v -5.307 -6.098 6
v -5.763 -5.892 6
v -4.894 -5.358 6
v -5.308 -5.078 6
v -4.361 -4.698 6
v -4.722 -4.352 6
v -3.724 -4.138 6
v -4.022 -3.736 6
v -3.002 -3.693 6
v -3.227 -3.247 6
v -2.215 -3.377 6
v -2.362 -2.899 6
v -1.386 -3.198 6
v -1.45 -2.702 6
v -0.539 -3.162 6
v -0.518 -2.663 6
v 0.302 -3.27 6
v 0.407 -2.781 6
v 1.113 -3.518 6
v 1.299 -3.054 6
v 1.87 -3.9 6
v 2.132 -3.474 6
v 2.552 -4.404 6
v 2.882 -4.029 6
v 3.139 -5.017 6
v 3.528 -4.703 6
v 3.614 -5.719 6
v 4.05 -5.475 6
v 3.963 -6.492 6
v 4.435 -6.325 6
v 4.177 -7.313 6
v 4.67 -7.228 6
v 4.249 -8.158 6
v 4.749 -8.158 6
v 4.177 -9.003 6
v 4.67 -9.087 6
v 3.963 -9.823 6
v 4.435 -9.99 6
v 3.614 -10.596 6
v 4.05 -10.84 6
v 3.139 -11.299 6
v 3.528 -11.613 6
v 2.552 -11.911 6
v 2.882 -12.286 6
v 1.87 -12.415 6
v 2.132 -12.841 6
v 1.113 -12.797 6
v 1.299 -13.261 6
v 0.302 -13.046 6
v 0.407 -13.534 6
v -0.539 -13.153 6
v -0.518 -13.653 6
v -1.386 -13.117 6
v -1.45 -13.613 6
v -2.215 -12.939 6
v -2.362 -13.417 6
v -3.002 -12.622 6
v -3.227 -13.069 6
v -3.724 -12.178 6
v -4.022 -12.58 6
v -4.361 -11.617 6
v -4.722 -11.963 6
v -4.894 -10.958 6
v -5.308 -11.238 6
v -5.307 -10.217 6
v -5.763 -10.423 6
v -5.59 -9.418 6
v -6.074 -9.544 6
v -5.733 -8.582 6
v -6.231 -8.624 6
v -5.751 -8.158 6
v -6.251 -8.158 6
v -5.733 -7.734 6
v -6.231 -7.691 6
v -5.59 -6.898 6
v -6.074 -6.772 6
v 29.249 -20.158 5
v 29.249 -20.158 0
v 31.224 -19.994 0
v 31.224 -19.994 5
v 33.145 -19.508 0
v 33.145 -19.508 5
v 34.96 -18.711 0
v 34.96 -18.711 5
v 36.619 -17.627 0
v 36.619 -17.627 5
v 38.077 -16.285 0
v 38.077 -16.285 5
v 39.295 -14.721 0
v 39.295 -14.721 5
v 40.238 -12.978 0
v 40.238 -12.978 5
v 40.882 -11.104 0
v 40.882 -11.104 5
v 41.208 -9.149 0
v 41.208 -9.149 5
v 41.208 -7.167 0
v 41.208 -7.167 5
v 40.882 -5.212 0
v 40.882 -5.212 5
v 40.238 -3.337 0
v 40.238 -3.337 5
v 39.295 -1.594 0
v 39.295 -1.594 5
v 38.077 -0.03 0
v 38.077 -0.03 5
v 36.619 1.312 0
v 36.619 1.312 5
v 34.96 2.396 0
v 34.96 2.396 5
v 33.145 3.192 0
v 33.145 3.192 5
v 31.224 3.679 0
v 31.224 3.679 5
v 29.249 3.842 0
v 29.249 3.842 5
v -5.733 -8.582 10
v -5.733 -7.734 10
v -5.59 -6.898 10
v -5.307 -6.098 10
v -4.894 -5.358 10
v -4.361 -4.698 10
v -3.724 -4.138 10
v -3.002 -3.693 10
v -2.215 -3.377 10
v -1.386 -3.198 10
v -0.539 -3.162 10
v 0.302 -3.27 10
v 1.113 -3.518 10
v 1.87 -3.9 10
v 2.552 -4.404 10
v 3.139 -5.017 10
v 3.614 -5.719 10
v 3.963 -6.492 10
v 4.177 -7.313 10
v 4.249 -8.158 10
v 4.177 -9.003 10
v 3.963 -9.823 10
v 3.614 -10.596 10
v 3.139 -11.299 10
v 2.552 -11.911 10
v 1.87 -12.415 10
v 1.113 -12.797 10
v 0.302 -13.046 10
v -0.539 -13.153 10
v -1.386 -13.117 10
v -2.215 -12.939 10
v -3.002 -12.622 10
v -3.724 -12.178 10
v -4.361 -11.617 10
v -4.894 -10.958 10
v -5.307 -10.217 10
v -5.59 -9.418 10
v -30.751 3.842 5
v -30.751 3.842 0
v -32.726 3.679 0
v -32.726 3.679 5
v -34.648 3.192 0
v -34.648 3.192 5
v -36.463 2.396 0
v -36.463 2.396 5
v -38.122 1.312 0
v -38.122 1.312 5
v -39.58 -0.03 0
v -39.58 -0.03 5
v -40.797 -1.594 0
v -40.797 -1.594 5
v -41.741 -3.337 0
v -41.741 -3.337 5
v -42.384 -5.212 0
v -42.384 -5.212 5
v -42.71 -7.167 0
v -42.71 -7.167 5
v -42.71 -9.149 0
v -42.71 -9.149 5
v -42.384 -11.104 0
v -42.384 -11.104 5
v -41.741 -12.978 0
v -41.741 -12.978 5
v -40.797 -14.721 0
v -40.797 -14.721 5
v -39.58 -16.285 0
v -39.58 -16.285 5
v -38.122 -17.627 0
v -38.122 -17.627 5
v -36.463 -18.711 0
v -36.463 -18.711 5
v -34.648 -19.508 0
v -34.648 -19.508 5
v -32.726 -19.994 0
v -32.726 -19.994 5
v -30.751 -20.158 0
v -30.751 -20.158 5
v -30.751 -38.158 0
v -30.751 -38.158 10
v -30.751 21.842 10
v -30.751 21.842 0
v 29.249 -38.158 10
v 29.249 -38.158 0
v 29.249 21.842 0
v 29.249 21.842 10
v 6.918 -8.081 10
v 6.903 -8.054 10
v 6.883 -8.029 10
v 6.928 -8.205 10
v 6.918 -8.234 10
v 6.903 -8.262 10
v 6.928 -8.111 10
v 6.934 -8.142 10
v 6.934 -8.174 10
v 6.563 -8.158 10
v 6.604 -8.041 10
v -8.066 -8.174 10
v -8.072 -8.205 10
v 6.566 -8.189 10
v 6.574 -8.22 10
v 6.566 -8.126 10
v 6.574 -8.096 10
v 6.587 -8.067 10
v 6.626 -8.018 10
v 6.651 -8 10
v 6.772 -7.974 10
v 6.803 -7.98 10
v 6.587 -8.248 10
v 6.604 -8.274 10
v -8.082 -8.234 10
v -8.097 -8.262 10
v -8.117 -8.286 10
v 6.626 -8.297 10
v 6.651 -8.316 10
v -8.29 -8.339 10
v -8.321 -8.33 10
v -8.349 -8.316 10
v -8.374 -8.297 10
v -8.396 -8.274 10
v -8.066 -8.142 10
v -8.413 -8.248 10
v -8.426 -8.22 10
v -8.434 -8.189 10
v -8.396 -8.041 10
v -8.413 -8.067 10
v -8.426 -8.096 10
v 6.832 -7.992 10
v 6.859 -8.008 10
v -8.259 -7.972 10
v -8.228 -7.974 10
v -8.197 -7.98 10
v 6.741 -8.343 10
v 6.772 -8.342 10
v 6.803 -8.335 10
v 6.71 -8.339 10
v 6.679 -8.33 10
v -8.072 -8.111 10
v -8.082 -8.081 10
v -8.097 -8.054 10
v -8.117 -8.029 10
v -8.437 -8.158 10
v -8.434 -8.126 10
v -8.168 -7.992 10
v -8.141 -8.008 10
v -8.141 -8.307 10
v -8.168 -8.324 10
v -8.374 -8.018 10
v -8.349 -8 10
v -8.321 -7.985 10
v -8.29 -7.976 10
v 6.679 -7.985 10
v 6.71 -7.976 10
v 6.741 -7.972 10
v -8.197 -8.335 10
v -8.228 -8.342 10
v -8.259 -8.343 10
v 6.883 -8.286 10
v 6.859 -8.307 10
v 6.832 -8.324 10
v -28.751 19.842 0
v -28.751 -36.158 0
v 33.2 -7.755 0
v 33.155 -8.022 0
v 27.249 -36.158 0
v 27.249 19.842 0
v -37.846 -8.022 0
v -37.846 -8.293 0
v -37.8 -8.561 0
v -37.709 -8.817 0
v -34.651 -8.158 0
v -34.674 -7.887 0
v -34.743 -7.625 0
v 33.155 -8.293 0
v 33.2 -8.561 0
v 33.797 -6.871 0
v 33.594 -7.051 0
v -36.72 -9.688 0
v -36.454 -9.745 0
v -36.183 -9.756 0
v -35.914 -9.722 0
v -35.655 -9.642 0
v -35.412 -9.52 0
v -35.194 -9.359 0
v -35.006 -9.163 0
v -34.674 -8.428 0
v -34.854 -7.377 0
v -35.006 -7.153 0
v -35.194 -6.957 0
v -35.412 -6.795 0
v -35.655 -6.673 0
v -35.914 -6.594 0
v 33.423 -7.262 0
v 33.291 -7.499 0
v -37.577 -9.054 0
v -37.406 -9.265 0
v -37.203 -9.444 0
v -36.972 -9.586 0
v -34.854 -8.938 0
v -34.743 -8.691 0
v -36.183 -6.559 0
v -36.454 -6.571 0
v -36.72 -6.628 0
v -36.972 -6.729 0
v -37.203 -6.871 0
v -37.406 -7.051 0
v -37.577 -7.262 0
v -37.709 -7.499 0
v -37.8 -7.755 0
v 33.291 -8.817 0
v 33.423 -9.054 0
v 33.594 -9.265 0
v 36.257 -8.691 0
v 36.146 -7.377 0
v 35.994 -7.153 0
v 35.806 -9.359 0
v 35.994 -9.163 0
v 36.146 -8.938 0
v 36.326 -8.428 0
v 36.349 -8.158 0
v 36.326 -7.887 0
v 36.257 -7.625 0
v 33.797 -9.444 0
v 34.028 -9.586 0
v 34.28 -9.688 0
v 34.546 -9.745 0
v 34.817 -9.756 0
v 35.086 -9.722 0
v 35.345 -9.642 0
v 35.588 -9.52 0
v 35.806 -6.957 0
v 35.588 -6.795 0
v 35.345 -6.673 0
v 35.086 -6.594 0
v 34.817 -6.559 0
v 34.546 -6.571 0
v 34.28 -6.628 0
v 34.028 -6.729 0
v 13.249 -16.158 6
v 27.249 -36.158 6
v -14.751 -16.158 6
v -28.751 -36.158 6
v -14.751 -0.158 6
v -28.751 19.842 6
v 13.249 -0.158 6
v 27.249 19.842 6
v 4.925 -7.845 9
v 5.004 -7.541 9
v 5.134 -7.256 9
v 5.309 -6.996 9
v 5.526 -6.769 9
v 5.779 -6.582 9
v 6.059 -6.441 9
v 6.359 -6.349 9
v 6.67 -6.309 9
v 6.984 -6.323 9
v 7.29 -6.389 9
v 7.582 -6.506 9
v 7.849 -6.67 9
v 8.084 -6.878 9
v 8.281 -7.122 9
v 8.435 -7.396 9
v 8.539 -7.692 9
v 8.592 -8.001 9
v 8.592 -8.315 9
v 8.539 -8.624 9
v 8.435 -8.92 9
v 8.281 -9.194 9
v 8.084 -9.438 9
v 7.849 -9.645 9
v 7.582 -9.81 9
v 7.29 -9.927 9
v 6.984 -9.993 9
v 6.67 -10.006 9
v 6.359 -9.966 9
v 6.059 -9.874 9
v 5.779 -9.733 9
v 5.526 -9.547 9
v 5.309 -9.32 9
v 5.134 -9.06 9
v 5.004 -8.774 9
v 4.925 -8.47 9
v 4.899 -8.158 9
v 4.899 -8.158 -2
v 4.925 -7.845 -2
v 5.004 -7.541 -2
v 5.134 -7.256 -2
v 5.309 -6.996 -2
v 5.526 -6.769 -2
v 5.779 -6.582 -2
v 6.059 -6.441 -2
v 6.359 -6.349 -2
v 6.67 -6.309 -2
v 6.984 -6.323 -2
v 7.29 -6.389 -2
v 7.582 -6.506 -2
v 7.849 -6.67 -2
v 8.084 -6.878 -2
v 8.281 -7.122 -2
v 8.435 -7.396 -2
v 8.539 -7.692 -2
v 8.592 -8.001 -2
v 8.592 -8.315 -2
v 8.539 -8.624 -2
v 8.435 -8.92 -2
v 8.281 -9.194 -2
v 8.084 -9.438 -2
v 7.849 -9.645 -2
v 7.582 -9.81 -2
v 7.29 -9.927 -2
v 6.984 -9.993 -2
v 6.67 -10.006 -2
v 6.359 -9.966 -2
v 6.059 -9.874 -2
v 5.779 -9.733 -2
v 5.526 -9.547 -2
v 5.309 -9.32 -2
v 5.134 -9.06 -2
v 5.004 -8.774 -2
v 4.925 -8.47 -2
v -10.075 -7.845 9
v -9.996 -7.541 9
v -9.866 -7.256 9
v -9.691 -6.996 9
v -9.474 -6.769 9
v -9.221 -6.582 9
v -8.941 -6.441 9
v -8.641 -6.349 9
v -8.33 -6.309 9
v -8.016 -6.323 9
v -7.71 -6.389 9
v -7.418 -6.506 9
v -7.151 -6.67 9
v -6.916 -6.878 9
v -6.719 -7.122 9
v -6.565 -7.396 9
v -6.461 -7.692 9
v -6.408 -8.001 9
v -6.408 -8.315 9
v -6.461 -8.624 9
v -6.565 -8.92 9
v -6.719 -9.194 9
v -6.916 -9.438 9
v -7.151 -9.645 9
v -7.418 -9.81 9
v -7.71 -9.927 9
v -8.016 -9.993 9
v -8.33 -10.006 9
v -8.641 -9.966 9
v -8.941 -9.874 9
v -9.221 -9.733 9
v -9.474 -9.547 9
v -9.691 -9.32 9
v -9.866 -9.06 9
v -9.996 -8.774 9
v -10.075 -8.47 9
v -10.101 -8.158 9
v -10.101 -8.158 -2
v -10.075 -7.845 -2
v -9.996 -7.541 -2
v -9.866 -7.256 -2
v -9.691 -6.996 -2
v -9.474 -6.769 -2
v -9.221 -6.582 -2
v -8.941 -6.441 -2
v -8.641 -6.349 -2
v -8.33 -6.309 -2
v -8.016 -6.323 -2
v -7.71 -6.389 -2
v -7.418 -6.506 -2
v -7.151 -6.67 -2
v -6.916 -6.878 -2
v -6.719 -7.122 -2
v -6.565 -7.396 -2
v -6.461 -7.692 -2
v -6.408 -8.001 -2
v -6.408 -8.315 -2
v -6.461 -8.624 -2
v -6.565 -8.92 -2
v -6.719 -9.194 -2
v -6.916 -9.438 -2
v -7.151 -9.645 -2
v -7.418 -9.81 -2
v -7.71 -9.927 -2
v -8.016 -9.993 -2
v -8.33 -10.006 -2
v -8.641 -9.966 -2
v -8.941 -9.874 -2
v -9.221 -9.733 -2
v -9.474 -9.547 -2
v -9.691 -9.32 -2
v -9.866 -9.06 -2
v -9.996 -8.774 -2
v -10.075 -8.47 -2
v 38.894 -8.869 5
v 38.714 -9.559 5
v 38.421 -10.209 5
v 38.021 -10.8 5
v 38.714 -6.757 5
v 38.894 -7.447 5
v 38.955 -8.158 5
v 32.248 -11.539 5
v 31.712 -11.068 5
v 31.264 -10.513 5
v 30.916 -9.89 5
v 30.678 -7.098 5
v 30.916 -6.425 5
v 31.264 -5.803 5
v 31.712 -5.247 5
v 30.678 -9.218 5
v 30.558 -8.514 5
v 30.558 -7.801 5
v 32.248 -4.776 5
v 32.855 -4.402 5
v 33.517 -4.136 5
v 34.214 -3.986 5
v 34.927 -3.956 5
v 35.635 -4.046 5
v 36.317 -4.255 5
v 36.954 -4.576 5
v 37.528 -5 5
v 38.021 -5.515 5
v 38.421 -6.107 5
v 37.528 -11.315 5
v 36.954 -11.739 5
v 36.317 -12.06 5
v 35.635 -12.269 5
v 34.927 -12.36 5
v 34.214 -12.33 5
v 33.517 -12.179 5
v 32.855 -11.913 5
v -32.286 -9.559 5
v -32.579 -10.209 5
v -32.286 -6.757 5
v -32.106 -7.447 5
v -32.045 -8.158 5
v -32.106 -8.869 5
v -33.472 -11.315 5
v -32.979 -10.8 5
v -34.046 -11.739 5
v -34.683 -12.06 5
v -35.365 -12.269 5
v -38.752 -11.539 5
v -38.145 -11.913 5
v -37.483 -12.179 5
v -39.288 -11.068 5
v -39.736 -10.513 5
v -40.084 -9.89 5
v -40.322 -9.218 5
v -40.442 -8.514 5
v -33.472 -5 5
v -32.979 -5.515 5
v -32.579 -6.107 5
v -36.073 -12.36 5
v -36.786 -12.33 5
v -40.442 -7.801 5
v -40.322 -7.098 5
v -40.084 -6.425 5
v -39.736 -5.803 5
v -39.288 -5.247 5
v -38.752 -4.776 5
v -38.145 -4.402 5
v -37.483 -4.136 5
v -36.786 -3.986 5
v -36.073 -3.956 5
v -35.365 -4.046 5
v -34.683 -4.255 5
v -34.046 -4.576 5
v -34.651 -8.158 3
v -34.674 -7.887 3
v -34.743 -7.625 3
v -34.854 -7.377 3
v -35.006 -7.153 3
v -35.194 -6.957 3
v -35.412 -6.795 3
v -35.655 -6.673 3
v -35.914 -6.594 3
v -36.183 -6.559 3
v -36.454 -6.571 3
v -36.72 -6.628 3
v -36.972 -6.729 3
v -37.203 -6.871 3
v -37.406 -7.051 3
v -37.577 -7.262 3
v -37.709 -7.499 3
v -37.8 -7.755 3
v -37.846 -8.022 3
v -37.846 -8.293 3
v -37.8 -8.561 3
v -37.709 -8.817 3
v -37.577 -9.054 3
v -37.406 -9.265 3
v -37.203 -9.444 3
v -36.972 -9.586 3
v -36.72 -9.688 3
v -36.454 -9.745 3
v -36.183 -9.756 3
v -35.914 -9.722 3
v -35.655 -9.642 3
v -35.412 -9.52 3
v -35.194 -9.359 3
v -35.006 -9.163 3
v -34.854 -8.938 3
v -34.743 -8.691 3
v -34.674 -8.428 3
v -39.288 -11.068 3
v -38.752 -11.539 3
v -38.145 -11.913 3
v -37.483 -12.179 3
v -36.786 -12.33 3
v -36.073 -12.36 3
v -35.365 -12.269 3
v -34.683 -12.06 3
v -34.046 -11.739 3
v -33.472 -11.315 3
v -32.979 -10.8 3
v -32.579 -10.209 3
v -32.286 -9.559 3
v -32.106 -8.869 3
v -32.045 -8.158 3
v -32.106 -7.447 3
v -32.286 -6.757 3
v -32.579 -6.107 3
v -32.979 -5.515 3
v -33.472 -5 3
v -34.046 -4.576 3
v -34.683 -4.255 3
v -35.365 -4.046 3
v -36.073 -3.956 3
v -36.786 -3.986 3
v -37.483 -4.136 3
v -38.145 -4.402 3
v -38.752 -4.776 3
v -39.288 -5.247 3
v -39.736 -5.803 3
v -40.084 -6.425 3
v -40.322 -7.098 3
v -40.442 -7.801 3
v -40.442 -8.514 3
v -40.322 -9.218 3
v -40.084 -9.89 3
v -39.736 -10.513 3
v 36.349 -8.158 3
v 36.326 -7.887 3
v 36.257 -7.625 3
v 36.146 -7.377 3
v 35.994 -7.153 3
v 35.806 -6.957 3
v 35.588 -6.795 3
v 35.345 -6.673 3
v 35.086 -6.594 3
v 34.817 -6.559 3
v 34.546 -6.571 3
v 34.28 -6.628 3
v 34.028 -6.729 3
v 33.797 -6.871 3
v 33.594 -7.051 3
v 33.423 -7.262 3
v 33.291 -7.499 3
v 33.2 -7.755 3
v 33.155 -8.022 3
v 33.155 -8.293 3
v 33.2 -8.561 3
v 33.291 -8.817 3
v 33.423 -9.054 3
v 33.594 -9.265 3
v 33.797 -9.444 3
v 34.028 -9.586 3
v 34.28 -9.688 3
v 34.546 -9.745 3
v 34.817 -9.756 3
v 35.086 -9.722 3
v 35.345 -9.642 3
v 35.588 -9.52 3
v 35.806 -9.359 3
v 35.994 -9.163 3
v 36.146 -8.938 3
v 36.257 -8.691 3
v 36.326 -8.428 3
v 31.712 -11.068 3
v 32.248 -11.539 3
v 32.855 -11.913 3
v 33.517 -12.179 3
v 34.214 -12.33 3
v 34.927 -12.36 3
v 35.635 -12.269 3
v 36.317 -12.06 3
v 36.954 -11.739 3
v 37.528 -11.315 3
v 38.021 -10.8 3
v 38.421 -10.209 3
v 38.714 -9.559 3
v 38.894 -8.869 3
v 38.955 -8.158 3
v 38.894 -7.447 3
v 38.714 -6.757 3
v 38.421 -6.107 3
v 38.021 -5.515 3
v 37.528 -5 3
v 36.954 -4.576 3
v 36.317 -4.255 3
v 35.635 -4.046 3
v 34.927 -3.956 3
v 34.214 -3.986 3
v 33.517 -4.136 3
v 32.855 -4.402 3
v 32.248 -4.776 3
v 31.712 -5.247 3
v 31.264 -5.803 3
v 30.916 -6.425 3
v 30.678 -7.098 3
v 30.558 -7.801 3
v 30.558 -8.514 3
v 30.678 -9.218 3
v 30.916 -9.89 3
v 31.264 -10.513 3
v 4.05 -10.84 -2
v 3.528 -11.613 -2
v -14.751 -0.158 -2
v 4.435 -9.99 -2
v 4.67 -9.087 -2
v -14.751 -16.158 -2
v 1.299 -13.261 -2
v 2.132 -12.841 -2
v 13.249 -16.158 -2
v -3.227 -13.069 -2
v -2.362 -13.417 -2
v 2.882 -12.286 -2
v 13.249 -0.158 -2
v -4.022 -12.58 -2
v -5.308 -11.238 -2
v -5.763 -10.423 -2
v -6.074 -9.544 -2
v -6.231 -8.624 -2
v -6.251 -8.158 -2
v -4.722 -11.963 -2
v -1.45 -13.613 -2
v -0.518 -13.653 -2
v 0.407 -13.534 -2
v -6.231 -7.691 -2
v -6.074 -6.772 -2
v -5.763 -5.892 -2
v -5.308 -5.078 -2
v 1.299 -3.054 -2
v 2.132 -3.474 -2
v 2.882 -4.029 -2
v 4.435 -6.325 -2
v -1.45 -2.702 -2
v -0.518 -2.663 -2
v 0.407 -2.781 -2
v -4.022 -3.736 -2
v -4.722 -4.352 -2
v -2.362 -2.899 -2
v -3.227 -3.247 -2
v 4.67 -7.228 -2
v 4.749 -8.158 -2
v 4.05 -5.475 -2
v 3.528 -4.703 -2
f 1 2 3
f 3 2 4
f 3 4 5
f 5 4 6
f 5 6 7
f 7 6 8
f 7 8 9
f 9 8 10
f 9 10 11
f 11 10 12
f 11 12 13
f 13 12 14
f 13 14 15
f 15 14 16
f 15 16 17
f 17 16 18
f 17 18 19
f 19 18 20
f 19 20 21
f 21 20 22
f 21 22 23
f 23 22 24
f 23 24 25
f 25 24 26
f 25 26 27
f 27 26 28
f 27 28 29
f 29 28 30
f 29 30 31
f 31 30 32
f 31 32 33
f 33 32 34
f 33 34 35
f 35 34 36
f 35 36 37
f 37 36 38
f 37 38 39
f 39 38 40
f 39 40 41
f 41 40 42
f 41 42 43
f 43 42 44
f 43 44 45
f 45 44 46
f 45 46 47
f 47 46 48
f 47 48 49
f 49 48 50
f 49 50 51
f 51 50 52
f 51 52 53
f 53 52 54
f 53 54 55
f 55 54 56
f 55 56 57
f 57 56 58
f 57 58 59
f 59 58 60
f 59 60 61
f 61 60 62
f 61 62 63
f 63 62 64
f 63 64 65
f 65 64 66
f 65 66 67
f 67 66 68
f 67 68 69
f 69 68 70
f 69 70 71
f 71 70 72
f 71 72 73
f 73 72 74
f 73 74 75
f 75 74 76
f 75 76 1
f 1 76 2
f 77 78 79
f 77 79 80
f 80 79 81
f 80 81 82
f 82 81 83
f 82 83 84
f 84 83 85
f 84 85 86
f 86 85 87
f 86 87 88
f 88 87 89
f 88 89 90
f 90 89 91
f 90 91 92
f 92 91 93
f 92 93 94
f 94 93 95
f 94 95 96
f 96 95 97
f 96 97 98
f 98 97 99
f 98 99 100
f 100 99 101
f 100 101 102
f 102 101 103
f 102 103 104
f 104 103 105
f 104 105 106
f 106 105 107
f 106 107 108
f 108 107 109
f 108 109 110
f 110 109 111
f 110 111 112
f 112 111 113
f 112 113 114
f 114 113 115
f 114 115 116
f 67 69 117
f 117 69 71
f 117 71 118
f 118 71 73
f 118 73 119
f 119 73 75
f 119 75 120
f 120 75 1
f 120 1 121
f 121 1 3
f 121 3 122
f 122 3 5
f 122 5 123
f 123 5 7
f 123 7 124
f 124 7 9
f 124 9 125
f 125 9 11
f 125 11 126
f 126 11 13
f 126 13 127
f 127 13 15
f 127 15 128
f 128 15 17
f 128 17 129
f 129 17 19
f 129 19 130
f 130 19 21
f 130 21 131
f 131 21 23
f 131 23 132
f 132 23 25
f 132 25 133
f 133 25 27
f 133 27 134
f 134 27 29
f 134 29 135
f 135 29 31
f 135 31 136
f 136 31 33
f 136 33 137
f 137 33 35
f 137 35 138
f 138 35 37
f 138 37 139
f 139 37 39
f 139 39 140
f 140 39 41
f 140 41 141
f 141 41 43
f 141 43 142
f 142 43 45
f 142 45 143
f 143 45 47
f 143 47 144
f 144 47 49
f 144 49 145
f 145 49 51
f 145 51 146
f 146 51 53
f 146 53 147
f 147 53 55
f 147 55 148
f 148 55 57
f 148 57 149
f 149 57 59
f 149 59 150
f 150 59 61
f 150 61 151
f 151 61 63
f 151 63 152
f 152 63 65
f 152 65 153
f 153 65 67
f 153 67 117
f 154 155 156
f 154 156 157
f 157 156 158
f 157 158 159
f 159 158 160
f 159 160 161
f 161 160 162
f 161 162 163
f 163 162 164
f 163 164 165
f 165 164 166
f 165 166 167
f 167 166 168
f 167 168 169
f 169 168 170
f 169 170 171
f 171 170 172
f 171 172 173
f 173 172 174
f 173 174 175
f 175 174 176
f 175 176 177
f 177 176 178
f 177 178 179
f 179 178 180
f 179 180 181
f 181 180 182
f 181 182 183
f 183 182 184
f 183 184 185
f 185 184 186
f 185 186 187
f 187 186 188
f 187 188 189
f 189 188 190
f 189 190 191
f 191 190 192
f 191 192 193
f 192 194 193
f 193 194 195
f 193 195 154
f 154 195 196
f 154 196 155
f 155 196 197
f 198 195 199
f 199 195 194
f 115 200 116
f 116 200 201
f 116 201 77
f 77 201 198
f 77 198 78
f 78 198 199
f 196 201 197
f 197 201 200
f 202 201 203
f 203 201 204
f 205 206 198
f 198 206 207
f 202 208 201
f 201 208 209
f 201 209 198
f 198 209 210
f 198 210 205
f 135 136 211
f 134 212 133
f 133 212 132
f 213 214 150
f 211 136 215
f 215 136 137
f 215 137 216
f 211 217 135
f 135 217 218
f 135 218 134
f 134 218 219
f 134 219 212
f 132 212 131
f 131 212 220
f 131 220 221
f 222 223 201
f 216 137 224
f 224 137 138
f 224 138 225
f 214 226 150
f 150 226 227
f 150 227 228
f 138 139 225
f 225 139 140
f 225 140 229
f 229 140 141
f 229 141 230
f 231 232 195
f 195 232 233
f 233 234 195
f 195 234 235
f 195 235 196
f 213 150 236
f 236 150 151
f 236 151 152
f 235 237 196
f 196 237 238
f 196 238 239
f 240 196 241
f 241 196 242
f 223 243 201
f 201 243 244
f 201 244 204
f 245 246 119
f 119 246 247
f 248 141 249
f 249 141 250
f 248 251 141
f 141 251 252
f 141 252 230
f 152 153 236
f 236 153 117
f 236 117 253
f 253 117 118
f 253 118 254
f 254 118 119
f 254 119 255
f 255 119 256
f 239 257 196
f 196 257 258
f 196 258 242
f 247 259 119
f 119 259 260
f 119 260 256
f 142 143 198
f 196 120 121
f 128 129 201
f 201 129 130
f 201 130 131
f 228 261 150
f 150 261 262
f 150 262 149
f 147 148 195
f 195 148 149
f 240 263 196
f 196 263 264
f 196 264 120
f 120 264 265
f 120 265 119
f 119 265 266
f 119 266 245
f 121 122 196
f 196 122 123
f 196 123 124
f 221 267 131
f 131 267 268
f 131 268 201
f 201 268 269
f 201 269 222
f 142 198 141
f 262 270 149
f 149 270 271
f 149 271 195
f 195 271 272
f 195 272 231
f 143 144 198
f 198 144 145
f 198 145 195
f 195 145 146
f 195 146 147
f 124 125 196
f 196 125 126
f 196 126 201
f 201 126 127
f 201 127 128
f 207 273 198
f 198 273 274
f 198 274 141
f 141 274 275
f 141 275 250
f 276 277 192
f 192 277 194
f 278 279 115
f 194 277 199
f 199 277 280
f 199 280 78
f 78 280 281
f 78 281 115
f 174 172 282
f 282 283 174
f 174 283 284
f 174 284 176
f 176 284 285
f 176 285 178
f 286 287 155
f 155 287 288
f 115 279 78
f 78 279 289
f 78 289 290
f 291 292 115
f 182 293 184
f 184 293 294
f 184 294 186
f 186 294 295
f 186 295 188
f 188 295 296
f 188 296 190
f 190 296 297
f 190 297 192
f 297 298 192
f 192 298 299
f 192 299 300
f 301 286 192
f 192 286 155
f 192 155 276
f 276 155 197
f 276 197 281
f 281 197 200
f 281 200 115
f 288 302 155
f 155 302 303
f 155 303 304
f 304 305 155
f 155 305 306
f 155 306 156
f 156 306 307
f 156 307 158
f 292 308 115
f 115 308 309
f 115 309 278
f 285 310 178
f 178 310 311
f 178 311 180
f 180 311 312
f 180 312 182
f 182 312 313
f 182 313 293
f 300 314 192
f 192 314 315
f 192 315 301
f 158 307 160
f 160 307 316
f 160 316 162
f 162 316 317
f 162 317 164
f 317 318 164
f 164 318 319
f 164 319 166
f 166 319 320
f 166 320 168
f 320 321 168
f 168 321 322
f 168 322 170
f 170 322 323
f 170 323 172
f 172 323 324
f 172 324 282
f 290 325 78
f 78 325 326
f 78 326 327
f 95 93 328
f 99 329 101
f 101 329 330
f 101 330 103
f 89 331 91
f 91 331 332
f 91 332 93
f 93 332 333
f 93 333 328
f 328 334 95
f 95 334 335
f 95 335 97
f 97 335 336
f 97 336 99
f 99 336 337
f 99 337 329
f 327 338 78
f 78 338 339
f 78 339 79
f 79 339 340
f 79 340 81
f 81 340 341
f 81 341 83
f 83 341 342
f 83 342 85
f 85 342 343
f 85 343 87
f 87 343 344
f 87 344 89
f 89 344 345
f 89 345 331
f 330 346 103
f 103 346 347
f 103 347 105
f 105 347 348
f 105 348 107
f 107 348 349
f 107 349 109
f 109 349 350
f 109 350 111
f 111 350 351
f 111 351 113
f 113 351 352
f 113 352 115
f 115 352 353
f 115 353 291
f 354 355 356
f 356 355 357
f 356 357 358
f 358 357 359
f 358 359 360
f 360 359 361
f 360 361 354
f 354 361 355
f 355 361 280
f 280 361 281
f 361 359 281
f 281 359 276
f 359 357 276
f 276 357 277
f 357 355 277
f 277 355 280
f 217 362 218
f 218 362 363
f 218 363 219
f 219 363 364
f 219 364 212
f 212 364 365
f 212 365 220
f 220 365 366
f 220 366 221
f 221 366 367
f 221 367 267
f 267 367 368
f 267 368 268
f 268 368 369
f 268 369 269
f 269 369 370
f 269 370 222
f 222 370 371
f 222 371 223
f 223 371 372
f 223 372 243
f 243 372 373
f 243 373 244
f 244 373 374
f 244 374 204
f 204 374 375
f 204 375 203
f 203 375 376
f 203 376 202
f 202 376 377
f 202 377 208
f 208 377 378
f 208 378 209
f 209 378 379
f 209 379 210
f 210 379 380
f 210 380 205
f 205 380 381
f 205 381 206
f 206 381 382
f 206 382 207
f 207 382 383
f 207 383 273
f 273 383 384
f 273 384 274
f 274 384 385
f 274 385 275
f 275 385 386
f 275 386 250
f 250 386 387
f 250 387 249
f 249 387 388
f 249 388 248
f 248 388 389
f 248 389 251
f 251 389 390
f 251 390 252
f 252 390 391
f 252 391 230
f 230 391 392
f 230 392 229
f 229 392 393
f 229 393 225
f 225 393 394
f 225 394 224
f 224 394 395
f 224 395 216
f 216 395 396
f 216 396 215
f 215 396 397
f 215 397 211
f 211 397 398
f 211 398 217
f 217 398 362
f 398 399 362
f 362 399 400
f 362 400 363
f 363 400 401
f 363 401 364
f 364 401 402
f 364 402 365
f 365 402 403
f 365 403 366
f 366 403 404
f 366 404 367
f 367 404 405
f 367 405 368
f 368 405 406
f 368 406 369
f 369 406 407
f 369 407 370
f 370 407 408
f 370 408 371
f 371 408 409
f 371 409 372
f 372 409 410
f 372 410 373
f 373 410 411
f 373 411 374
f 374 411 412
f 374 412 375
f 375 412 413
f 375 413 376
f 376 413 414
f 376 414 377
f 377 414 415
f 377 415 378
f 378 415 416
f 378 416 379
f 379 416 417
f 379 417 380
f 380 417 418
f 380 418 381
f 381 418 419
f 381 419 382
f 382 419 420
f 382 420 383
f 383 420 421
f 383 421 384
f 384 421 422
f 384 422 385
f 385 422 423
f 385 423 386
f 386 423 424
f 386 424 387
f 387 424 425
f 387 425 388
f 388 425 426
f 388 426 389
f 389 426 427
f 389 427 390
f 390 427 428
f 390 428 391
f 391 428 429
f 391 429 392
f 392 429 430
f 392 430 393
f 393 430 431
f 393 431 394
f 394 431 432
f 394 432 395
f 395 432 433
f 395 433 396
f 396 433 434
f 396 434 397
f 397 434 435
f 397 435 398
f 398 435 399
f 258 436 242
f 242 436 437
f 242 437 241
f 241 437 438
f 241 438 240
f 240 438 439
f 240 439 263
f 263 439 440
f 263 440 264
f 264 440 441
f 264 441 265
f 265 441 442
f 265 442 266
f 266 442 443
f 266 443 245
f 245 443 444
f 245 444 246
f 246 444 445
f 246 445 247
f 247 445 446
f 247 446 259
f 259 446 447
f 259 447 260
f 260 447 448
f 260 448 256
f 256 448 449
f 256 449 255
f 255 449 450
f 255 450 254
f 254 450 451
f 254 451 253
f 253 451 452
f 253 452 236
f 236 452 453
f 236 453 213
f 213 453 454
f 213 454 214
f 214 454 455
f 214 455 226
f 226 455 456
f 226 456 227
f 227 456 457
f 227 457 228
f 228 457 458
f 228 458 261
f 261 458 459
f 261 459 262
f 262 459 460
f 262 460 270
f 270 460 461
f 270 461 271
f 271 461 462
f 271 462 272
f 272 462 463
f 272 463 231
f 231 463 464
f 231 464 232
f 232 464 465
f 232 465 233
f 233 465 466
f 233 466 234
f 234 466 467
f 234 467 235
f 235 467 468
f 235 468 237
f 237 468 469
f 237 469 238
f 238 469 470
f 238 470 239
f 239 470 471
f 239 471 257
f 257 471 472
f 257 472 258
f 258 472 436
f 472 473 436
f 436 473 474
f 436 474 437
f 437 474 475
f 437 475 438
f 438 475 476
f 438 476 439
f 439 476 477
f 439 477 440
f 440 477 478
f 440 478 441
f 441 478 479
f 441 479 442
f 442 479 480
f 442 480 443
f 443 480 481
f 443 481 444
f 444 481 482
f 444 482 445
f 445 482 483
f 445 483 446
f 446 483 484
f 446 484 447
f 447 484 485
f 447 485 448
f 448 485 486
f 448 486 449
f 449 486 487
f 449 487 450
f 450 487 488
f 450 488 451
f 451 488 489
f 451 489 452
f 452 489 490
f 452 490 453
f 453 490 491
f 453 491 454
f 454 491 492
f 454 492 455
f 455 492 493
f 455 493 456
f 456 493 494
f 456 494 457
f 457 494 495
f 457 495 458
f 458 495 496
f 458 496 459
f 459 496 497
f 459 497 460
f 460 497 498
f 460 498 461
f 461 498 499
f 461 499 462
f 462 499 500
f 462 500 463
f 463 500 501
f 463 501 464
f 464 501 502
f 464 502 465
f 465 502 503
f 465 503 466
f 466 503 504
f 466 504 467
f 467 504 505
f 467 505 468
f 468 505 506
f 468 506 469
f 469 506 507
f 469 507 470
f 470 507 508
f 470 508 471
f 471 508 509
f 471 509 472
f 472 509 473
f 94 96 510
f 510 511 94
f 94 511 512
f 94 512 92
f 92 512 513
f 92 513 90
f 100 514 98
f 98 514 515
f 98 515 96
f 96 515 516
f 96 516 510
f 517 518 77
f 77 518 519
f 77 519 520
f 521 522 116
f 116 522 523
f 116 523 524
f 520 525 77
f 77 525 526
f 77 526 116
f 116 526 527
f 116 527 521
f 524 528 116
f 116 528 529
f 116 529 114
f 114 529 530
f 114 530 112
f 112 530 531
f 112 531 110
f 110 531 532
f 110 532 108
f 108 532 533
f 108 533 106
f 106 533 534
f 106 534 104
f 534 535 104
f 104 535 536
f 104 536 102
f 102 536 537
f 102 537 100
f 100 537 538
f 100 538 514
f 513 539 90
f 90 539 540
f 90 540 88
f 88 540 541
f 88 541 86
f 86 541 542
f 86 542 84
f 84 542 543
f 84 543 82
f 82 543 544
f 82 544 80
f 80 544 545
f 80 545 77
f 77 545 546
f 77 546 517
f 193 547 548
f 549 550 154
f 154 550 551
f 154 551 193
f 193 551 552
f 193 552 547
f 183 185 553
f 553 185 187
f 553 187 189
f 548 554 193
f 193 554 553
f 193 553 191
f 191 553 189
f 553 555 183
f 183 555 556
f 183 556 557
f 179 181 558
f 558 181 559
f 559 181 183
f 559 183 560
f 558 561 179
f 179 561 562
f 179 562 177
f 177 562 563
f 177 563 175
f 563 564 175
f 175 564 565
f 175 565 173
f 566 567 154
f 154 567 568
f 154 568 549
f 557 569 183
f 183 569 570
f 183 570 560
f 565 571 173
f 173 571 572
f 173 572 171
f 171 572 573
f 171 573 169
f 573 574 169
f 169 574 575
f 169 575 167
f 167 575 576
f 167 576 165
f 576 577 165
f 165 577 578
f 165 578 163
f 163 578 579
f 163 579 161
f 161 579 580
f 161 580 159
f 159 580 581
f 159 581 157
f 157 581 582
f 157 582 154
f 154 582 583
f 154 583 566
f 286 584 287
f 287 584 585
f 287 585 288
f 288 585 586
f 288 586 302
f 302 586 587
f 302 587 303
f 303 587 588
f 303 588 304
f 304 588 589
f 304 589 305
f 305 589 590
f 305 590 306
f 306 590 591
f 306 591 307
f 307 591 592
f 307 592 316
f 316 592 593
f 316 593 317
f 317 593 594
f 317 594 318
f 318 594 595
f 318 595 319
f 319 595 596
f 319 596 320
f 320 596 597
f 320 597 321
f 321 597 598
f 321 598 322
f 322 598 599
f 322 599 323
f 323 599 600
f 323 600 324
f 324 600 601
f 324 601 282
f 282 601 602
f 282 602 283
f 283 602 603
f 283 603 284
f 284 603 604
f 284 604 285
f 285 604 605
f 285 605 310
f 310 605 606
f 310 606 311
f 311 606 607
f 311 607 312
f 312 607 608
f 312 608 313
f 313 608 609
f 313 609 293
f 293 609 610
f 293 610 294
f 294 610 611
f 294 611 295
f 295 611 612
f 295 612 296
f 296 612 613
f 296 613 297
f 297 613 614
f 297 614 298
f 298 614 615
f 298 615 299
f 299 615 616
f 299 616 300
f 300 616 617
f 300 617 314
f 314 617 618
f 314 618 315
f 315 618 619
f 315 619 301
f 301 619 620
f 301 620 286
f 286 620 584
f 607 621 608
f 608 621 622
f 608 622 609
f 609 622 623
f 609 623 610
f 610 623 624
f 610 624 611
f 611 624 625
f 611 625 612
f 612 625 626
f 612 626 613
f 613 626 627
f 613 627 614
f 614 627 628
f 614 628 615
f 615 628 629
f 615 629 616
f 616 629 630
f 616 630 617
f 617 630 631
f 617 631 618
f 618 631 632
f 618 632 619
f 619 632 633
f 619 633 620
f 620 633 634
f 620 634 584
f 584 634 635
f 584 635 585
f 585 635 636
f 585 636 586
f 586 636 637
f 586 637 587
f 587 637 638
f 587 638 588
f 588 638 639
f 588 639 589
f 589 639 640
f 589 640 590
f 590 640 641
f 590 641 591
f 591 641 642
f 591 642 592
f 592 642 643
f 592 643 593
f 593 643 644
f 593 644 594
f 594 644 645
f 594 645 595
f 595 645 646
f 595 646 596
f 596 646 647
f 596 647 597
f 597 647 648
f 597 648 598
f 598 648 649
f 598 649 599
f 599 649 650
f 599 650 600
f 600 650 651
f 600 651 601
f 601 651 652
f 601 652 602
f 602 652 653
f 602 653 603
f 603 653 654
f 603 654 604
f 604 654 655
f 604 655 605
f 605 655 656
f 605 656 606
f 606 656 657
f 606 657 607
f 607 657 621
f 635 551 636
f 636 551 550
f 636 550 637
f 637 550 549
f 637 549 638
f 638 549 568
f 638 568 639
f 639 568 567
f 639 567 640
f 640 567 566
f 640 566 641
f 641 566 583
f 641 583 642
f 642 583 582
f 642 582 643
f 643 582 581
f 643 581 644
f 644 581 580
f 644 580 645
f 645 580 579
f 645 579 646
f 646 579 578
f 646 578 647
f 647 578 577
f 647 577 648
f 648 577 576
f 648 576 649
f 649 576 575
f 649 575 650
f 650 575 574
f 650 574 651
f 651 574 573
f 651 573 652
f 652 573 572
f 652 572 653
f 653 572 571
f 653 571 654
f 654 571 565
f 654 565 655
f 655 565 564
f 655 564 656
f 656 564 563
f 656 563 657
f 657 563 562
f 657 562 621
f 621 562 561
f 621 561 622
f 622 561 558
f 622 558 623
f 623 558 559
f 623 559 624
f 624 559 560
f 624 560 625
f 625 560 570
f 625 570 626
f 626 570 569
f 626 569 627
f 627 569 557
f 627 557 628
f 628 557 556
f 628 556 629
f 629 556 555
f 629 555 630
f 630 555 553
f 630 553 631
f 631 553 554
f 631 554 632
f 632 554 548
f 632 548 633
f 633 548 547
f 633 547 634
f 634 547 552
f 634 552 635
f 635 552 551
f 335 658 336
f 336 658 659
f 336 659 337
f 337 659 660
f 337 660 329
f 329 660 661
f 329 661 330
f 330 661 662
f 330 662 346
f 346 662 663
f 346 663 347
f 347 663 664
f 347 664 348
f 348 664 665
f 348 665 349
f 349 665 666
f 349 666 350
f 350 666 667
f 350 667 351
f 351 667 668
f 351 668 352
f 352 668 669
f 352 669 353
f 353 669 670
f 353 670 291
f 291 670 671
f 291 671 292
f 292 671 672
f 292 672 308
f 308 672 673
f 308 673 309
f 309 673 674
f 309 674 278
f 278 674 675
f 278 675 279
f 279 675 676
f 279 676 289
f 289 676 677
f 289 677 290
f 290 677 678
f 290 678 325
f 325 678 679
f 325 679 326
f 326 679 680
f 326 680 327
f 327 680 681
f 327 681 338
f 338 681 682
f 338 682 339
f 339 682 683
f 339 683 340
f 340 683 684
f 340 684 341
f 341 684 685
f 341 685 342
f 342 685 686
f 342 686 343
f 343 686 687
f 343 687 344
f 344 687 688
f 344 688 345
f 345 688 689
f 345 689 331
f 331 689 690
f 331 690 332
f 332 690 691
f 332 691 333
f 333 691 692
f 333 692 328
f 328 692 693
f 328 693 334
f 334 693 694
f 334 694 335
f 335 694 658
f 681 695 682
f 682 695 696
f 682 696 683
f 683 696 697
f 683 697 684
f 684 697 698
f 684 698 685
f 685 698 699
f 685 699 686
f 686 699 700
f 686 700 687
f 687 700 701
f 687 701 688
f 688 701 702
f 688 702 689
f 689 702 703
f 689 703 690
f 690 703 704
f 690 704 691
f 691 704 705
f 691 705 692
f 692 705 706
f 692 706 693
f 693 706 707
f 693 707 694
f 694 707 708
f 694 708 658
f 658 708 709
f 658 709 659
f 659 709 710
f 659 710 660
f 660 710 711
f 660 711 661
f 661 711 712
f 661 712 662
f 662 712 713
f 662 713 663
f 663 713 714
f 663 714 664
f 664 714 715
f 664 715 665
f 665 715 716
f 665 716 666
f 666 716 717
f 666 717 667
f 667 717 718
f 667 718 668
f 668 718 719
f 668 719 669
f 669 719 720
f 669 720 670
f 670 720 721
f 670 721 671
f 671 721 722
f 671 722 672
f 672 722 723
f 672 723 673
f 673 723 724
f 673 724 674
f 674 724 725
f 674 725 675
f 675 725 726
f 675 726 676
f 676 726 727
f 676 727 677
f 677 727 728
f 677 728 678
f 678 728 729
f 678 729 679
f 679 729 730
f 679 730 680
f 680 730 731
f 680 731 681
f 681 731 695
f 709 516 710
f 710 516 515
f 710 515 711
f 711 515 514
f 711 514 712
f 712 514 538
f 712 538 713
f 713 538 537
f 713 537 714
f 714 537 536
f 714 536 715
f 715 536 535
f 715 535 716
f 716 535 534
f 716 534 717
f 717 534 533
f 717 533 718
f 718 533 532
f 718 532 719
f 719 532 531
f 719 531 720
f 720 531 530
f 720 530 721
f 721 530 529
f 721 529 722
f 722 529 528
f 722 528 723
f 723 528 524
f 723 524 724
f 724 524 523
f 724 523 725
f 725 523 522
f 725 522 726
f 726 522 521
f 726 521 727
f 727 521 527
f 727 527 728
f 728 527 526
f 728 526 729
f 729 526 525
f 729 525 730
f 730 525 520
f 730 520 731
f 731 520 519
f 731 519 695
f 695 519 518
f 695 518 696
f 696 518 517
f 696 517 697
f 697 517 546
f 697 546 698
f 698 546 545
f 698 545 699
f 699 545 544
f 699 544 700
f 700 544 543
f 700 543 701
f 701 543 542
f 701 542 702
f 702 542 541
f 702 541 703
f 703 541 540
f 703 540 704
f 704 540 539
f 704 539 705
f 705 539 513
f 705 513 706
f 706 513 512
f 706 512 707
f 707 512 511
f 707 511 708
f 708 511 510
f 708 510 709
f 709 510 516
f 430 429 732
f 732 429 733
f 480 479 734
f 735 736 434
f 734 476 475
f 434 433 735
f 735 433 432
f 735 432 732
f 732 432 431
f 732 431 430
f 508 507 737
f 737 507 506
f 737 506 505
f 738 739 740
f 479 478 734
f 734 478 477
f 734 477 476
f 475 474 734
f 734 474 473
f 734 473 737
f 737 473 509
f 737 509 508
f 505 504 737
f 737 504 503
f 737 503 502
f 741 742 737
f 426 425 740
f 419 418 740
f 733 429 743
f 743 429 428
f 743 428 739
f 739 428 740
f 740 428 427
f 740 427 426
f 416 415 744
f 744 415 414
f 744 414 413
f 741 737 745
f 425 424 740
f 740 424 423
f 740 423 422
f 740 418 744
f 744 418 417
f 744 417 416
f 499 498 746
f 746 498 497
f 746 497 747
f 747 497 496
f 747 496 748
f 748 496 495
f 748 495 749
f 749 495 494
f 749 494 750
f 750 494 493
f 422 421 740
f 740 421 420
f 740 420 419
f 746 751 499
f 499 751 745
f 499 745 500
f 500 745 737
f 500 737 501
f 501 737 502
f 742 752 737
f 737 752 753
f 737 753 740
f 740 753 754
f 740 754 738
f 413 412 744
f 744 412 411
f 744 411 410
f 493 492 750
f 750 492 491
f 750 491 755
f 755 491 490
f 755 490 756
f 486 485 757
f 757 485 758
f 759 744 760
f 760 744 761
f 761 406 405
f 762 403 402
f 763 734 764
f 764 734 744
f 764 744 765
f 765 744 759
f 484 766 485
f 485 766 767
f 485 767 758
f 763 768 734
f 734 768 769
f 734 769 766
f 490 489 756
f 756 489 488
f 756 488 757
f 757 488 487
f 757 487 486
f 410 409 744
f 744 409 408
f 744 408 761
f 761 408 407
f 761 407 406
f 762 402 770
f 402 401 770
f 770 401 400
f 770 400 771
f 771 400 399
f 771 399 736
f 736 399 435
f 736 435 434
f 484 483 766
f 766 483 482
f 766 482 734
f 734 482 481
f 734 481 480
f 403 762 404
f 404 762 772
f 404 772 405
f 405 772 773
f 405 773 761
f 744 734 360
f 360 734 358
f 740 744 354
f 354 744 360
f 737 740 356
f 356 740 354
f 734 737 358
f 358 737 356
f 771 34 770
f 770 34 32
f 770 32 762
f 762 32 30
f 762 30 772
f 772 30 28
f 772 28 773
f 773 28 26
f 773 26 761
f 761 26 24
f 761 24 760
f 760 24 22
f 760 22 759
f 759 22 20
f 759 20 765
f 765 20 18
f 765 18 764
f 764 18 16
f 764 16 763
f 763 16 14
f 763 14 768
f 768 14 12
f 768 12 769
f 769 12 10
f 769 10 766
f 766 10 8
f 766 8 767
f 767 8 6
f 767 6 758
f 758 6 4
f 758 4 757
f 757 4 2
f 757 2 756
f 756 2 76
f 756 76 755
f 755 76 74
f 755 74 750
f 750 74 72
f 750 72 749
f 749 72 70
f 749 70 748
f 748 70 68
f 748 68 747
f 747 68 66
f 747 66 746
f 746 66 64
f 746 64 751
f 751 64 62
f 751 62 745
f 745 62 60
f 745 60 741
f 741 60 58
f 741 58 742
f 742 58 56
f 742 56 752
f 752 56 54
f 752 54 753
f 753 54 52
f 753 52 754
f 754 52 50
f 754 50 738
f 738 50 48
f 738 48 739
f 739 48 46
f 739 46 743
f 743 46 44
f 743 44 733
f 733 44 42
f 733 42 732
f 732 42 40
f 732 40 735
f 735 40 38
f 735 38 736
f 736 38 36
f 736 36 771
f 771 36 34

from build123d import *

# Parameters (mm, degrees)
BOSS_EXTRU_1_DEPTH                                = 10
ESQUISSE2_R                                       = 5.000000000000001
ENL_V_MAT_EXTRU_1_DEPTH                           = 59.16945460210114
ENL_V_MAT_EXTRU_5_DEPTH                           = 6
D_GAGEMENT_M3_52_D                                = 3.7
D_GAGEMENT_M3_52_DEPTH                            = 3
D_GAGEMENT_M3_52_TIP                              = 1.1115921452009865
ESQUISSE16_W                                      = 32.38443417416177
ESQUISSE16_H                                      = 29.10998154186418
ENL_V_MAT_EXTRU_6_DEPTH                           = 5
CHAMBRAGE_POUR_VIS_T_TE_HEXAGONALE_M3_D           = 3.2
CHAMBRAGE_POUR_VIS_T_TE_HEXAGONALE_M3_CBORE_D     = 8.412
CHAMBRAGE_POUR_VIS_T_TE_HEXAGONALE_M3_CBORE_DEPTH = 2
SKETCH1_R                                         = 1.8499999999999994
SKETCH1_R_2                                       = 1.8499999999999885
SKETCH1_R_3                                       = 5.5
BOSS_EXTRUDE1_DEPTH                               = 8


with BuildPart() as part:
    # Esquisse1 → Boss.-Extru.1 (new body)
    with BuildSketch(Plane.XY):
        with BuildLine():
            Line((-30.751266961285342, 21.842240344710792), (1.248733038714648, 21.842240344710792))
            Line((1.248733038714648, 21.842240344710792), (29.248733038714647, 21.842240344710792))
            Line((29.248733038714647, 21.842240344710792), (29.24873303871465, 3.8422403447107913))
            ThreePointArc((29.24873303871465, 3.8422403447107913), (41.24873303871465, -8.157759655289208), (29.24873303871465, -20.157759655289208))
            Line((29.24873303871465, -20.157759655289208), (29.248733038714654, -38.15775965528921))
            Line((29.248733038714654, -38.15775965528921), (-30.751266961285342, -38.15775965528921))
            Line((-30.751266961285342, -38.15775965528921), (-30.751266961285346, -20.157759655289208))
            ThreePointArc((-30.751266961285346, -20.157759655289208), (-42.75126696128535, -8.15775965528921), (-30.751266961285346, 3.8422403447107913))
            Line((-30.751266961285346, 3.8422403447107913), (-30.751266961285342, 21.842240344710792))
        make_face()
    extrude(amount=BOSS_EXTRU_1_DEPTH)

    # Esquisse2 → Enlèv. mat.-Extru.1 (cut, through all)
    with BuildSketch(Plane.XY.offset(10)):
        with Locations((-0.7512669612853434, -8.157759655289208)):
            Circle(ESQUISSE2_R)
    extrude(amount=-ENL_V_MAT_EXTRU_1_DEPTH, mode=Mode.SUBTRACT)

    # Esquisse13 → Enlèv. mat.-Extru.5 (cut)
    with BuildSketch(Plane(origin=(0, 0, 0), x_dir=(-1, 0, 0), z_dir=(0, 0, -1))):
        Polygon((-27.248733038714654, 19.842240344710792), (28.751266961285335, 19.842240344710792), (28.751266961285346, -36.15775965528921), (-27.248733038714647, -36.15775965528921), align=None)
    extrude(amount=-ENL_V_MAT_EXTRU_5_DEPTH, mode=Mode.SUBTRACT)

    # Dégagement M3.52
    with Locations(Plane(origin=(0, 0, 6), x_dir=(-1, 0, 0), z_dir=(0, 0, -1))):
        with Locations((8.251266961, -8.157759655), (-6.748733039, -8.157759655)):
            Hole(D_GAGEMENT_M3_52_D / 2, depth=D_GAGEMENT_M3_52_DEPTH)
            with Locations((0, 0, -(D_GAGEMENT_M3_52_DEPTH + D_GAGEMENT_M3_52_TIP / 2))):  # 118° drill point
                Cone(0, D_GAGEMENT_M3_52_D / 2, D_GAGEMENT_M3_52_TIP, mode=Mode.SUBTRACT)

    # Esquisse16 → Enlèv. mat.-Extru.6 (cut)
    with BuildSketch(Plane.XY.offset(10)):
        Polygon((-30.75126696128535, 3.8422403447107913), (-47.0482075621835, 3.8422403447107896), (-47.0482075621835, -23.80458867239539), (-30.75126696128535, -23.804588672395386), align=None)
        with Locations((45.44095012579554, -10.712750426221298)):
            Rectangle(ESQUISSE16_W, ESQUISSE16_H)
    extrude(amount=-ENL_V_MAT_EXTRU_6_DEPTH, mode=Mode.SUBTRACT)

    # Chambrage pour vis à tête hexagonale M3 (Grade A)1 (through all)
    with Locations(Plane.XY.offset(5)):
        with Locations((34.748733039, -8.157759655), (-36.251266961, -8.157759655)):
            CounterBoreHole(CHAMBRAGE_POUR_VIS_T_TE_HEXAGONALE_M3_D / 2, CHAMBRAGE_POUR_VIS_T_TE_HEXAGONALE_M3_CBORE_D / 2, CHAMBRAGE_POUR_VIS_T_TE_HEXAGONALE_M3_CBORE_DEPTH)

    # Sketch1 → Boss-Extrude1 (add)
    with BuildSketch(Plane(origin=(0, 0, 6), x_dir=(-1, 0, 0), z_dir=(0, 0, -1))):
        Polygon((-13.248733038714654, -0.15775965528920868), (-13.248733038714652, -16.157759655289208), (14.751266961285353, -16.157759655289208), (14.751266961285348, -0.15775965528920868), align=None)
        with Locations((-6.748733038714656, -8.15775965528921)):
            Circle(SKETCH1_R, mode=Mode.SUBTRACT)
        with Locations((8.251266961285344, -8.15775965528921)):
            Circle(SKETCH1_R_2, mode=Mode.SUBTRACT)
        with Locations((0.7512669612853434, -8.157759655289208)):
            Circle(SKETCH1_R_3, mode=Mode.SUBTRACT)
    extrude(amount=BOSS_EXTRUDE1_DEPTH)


solid = part.part
